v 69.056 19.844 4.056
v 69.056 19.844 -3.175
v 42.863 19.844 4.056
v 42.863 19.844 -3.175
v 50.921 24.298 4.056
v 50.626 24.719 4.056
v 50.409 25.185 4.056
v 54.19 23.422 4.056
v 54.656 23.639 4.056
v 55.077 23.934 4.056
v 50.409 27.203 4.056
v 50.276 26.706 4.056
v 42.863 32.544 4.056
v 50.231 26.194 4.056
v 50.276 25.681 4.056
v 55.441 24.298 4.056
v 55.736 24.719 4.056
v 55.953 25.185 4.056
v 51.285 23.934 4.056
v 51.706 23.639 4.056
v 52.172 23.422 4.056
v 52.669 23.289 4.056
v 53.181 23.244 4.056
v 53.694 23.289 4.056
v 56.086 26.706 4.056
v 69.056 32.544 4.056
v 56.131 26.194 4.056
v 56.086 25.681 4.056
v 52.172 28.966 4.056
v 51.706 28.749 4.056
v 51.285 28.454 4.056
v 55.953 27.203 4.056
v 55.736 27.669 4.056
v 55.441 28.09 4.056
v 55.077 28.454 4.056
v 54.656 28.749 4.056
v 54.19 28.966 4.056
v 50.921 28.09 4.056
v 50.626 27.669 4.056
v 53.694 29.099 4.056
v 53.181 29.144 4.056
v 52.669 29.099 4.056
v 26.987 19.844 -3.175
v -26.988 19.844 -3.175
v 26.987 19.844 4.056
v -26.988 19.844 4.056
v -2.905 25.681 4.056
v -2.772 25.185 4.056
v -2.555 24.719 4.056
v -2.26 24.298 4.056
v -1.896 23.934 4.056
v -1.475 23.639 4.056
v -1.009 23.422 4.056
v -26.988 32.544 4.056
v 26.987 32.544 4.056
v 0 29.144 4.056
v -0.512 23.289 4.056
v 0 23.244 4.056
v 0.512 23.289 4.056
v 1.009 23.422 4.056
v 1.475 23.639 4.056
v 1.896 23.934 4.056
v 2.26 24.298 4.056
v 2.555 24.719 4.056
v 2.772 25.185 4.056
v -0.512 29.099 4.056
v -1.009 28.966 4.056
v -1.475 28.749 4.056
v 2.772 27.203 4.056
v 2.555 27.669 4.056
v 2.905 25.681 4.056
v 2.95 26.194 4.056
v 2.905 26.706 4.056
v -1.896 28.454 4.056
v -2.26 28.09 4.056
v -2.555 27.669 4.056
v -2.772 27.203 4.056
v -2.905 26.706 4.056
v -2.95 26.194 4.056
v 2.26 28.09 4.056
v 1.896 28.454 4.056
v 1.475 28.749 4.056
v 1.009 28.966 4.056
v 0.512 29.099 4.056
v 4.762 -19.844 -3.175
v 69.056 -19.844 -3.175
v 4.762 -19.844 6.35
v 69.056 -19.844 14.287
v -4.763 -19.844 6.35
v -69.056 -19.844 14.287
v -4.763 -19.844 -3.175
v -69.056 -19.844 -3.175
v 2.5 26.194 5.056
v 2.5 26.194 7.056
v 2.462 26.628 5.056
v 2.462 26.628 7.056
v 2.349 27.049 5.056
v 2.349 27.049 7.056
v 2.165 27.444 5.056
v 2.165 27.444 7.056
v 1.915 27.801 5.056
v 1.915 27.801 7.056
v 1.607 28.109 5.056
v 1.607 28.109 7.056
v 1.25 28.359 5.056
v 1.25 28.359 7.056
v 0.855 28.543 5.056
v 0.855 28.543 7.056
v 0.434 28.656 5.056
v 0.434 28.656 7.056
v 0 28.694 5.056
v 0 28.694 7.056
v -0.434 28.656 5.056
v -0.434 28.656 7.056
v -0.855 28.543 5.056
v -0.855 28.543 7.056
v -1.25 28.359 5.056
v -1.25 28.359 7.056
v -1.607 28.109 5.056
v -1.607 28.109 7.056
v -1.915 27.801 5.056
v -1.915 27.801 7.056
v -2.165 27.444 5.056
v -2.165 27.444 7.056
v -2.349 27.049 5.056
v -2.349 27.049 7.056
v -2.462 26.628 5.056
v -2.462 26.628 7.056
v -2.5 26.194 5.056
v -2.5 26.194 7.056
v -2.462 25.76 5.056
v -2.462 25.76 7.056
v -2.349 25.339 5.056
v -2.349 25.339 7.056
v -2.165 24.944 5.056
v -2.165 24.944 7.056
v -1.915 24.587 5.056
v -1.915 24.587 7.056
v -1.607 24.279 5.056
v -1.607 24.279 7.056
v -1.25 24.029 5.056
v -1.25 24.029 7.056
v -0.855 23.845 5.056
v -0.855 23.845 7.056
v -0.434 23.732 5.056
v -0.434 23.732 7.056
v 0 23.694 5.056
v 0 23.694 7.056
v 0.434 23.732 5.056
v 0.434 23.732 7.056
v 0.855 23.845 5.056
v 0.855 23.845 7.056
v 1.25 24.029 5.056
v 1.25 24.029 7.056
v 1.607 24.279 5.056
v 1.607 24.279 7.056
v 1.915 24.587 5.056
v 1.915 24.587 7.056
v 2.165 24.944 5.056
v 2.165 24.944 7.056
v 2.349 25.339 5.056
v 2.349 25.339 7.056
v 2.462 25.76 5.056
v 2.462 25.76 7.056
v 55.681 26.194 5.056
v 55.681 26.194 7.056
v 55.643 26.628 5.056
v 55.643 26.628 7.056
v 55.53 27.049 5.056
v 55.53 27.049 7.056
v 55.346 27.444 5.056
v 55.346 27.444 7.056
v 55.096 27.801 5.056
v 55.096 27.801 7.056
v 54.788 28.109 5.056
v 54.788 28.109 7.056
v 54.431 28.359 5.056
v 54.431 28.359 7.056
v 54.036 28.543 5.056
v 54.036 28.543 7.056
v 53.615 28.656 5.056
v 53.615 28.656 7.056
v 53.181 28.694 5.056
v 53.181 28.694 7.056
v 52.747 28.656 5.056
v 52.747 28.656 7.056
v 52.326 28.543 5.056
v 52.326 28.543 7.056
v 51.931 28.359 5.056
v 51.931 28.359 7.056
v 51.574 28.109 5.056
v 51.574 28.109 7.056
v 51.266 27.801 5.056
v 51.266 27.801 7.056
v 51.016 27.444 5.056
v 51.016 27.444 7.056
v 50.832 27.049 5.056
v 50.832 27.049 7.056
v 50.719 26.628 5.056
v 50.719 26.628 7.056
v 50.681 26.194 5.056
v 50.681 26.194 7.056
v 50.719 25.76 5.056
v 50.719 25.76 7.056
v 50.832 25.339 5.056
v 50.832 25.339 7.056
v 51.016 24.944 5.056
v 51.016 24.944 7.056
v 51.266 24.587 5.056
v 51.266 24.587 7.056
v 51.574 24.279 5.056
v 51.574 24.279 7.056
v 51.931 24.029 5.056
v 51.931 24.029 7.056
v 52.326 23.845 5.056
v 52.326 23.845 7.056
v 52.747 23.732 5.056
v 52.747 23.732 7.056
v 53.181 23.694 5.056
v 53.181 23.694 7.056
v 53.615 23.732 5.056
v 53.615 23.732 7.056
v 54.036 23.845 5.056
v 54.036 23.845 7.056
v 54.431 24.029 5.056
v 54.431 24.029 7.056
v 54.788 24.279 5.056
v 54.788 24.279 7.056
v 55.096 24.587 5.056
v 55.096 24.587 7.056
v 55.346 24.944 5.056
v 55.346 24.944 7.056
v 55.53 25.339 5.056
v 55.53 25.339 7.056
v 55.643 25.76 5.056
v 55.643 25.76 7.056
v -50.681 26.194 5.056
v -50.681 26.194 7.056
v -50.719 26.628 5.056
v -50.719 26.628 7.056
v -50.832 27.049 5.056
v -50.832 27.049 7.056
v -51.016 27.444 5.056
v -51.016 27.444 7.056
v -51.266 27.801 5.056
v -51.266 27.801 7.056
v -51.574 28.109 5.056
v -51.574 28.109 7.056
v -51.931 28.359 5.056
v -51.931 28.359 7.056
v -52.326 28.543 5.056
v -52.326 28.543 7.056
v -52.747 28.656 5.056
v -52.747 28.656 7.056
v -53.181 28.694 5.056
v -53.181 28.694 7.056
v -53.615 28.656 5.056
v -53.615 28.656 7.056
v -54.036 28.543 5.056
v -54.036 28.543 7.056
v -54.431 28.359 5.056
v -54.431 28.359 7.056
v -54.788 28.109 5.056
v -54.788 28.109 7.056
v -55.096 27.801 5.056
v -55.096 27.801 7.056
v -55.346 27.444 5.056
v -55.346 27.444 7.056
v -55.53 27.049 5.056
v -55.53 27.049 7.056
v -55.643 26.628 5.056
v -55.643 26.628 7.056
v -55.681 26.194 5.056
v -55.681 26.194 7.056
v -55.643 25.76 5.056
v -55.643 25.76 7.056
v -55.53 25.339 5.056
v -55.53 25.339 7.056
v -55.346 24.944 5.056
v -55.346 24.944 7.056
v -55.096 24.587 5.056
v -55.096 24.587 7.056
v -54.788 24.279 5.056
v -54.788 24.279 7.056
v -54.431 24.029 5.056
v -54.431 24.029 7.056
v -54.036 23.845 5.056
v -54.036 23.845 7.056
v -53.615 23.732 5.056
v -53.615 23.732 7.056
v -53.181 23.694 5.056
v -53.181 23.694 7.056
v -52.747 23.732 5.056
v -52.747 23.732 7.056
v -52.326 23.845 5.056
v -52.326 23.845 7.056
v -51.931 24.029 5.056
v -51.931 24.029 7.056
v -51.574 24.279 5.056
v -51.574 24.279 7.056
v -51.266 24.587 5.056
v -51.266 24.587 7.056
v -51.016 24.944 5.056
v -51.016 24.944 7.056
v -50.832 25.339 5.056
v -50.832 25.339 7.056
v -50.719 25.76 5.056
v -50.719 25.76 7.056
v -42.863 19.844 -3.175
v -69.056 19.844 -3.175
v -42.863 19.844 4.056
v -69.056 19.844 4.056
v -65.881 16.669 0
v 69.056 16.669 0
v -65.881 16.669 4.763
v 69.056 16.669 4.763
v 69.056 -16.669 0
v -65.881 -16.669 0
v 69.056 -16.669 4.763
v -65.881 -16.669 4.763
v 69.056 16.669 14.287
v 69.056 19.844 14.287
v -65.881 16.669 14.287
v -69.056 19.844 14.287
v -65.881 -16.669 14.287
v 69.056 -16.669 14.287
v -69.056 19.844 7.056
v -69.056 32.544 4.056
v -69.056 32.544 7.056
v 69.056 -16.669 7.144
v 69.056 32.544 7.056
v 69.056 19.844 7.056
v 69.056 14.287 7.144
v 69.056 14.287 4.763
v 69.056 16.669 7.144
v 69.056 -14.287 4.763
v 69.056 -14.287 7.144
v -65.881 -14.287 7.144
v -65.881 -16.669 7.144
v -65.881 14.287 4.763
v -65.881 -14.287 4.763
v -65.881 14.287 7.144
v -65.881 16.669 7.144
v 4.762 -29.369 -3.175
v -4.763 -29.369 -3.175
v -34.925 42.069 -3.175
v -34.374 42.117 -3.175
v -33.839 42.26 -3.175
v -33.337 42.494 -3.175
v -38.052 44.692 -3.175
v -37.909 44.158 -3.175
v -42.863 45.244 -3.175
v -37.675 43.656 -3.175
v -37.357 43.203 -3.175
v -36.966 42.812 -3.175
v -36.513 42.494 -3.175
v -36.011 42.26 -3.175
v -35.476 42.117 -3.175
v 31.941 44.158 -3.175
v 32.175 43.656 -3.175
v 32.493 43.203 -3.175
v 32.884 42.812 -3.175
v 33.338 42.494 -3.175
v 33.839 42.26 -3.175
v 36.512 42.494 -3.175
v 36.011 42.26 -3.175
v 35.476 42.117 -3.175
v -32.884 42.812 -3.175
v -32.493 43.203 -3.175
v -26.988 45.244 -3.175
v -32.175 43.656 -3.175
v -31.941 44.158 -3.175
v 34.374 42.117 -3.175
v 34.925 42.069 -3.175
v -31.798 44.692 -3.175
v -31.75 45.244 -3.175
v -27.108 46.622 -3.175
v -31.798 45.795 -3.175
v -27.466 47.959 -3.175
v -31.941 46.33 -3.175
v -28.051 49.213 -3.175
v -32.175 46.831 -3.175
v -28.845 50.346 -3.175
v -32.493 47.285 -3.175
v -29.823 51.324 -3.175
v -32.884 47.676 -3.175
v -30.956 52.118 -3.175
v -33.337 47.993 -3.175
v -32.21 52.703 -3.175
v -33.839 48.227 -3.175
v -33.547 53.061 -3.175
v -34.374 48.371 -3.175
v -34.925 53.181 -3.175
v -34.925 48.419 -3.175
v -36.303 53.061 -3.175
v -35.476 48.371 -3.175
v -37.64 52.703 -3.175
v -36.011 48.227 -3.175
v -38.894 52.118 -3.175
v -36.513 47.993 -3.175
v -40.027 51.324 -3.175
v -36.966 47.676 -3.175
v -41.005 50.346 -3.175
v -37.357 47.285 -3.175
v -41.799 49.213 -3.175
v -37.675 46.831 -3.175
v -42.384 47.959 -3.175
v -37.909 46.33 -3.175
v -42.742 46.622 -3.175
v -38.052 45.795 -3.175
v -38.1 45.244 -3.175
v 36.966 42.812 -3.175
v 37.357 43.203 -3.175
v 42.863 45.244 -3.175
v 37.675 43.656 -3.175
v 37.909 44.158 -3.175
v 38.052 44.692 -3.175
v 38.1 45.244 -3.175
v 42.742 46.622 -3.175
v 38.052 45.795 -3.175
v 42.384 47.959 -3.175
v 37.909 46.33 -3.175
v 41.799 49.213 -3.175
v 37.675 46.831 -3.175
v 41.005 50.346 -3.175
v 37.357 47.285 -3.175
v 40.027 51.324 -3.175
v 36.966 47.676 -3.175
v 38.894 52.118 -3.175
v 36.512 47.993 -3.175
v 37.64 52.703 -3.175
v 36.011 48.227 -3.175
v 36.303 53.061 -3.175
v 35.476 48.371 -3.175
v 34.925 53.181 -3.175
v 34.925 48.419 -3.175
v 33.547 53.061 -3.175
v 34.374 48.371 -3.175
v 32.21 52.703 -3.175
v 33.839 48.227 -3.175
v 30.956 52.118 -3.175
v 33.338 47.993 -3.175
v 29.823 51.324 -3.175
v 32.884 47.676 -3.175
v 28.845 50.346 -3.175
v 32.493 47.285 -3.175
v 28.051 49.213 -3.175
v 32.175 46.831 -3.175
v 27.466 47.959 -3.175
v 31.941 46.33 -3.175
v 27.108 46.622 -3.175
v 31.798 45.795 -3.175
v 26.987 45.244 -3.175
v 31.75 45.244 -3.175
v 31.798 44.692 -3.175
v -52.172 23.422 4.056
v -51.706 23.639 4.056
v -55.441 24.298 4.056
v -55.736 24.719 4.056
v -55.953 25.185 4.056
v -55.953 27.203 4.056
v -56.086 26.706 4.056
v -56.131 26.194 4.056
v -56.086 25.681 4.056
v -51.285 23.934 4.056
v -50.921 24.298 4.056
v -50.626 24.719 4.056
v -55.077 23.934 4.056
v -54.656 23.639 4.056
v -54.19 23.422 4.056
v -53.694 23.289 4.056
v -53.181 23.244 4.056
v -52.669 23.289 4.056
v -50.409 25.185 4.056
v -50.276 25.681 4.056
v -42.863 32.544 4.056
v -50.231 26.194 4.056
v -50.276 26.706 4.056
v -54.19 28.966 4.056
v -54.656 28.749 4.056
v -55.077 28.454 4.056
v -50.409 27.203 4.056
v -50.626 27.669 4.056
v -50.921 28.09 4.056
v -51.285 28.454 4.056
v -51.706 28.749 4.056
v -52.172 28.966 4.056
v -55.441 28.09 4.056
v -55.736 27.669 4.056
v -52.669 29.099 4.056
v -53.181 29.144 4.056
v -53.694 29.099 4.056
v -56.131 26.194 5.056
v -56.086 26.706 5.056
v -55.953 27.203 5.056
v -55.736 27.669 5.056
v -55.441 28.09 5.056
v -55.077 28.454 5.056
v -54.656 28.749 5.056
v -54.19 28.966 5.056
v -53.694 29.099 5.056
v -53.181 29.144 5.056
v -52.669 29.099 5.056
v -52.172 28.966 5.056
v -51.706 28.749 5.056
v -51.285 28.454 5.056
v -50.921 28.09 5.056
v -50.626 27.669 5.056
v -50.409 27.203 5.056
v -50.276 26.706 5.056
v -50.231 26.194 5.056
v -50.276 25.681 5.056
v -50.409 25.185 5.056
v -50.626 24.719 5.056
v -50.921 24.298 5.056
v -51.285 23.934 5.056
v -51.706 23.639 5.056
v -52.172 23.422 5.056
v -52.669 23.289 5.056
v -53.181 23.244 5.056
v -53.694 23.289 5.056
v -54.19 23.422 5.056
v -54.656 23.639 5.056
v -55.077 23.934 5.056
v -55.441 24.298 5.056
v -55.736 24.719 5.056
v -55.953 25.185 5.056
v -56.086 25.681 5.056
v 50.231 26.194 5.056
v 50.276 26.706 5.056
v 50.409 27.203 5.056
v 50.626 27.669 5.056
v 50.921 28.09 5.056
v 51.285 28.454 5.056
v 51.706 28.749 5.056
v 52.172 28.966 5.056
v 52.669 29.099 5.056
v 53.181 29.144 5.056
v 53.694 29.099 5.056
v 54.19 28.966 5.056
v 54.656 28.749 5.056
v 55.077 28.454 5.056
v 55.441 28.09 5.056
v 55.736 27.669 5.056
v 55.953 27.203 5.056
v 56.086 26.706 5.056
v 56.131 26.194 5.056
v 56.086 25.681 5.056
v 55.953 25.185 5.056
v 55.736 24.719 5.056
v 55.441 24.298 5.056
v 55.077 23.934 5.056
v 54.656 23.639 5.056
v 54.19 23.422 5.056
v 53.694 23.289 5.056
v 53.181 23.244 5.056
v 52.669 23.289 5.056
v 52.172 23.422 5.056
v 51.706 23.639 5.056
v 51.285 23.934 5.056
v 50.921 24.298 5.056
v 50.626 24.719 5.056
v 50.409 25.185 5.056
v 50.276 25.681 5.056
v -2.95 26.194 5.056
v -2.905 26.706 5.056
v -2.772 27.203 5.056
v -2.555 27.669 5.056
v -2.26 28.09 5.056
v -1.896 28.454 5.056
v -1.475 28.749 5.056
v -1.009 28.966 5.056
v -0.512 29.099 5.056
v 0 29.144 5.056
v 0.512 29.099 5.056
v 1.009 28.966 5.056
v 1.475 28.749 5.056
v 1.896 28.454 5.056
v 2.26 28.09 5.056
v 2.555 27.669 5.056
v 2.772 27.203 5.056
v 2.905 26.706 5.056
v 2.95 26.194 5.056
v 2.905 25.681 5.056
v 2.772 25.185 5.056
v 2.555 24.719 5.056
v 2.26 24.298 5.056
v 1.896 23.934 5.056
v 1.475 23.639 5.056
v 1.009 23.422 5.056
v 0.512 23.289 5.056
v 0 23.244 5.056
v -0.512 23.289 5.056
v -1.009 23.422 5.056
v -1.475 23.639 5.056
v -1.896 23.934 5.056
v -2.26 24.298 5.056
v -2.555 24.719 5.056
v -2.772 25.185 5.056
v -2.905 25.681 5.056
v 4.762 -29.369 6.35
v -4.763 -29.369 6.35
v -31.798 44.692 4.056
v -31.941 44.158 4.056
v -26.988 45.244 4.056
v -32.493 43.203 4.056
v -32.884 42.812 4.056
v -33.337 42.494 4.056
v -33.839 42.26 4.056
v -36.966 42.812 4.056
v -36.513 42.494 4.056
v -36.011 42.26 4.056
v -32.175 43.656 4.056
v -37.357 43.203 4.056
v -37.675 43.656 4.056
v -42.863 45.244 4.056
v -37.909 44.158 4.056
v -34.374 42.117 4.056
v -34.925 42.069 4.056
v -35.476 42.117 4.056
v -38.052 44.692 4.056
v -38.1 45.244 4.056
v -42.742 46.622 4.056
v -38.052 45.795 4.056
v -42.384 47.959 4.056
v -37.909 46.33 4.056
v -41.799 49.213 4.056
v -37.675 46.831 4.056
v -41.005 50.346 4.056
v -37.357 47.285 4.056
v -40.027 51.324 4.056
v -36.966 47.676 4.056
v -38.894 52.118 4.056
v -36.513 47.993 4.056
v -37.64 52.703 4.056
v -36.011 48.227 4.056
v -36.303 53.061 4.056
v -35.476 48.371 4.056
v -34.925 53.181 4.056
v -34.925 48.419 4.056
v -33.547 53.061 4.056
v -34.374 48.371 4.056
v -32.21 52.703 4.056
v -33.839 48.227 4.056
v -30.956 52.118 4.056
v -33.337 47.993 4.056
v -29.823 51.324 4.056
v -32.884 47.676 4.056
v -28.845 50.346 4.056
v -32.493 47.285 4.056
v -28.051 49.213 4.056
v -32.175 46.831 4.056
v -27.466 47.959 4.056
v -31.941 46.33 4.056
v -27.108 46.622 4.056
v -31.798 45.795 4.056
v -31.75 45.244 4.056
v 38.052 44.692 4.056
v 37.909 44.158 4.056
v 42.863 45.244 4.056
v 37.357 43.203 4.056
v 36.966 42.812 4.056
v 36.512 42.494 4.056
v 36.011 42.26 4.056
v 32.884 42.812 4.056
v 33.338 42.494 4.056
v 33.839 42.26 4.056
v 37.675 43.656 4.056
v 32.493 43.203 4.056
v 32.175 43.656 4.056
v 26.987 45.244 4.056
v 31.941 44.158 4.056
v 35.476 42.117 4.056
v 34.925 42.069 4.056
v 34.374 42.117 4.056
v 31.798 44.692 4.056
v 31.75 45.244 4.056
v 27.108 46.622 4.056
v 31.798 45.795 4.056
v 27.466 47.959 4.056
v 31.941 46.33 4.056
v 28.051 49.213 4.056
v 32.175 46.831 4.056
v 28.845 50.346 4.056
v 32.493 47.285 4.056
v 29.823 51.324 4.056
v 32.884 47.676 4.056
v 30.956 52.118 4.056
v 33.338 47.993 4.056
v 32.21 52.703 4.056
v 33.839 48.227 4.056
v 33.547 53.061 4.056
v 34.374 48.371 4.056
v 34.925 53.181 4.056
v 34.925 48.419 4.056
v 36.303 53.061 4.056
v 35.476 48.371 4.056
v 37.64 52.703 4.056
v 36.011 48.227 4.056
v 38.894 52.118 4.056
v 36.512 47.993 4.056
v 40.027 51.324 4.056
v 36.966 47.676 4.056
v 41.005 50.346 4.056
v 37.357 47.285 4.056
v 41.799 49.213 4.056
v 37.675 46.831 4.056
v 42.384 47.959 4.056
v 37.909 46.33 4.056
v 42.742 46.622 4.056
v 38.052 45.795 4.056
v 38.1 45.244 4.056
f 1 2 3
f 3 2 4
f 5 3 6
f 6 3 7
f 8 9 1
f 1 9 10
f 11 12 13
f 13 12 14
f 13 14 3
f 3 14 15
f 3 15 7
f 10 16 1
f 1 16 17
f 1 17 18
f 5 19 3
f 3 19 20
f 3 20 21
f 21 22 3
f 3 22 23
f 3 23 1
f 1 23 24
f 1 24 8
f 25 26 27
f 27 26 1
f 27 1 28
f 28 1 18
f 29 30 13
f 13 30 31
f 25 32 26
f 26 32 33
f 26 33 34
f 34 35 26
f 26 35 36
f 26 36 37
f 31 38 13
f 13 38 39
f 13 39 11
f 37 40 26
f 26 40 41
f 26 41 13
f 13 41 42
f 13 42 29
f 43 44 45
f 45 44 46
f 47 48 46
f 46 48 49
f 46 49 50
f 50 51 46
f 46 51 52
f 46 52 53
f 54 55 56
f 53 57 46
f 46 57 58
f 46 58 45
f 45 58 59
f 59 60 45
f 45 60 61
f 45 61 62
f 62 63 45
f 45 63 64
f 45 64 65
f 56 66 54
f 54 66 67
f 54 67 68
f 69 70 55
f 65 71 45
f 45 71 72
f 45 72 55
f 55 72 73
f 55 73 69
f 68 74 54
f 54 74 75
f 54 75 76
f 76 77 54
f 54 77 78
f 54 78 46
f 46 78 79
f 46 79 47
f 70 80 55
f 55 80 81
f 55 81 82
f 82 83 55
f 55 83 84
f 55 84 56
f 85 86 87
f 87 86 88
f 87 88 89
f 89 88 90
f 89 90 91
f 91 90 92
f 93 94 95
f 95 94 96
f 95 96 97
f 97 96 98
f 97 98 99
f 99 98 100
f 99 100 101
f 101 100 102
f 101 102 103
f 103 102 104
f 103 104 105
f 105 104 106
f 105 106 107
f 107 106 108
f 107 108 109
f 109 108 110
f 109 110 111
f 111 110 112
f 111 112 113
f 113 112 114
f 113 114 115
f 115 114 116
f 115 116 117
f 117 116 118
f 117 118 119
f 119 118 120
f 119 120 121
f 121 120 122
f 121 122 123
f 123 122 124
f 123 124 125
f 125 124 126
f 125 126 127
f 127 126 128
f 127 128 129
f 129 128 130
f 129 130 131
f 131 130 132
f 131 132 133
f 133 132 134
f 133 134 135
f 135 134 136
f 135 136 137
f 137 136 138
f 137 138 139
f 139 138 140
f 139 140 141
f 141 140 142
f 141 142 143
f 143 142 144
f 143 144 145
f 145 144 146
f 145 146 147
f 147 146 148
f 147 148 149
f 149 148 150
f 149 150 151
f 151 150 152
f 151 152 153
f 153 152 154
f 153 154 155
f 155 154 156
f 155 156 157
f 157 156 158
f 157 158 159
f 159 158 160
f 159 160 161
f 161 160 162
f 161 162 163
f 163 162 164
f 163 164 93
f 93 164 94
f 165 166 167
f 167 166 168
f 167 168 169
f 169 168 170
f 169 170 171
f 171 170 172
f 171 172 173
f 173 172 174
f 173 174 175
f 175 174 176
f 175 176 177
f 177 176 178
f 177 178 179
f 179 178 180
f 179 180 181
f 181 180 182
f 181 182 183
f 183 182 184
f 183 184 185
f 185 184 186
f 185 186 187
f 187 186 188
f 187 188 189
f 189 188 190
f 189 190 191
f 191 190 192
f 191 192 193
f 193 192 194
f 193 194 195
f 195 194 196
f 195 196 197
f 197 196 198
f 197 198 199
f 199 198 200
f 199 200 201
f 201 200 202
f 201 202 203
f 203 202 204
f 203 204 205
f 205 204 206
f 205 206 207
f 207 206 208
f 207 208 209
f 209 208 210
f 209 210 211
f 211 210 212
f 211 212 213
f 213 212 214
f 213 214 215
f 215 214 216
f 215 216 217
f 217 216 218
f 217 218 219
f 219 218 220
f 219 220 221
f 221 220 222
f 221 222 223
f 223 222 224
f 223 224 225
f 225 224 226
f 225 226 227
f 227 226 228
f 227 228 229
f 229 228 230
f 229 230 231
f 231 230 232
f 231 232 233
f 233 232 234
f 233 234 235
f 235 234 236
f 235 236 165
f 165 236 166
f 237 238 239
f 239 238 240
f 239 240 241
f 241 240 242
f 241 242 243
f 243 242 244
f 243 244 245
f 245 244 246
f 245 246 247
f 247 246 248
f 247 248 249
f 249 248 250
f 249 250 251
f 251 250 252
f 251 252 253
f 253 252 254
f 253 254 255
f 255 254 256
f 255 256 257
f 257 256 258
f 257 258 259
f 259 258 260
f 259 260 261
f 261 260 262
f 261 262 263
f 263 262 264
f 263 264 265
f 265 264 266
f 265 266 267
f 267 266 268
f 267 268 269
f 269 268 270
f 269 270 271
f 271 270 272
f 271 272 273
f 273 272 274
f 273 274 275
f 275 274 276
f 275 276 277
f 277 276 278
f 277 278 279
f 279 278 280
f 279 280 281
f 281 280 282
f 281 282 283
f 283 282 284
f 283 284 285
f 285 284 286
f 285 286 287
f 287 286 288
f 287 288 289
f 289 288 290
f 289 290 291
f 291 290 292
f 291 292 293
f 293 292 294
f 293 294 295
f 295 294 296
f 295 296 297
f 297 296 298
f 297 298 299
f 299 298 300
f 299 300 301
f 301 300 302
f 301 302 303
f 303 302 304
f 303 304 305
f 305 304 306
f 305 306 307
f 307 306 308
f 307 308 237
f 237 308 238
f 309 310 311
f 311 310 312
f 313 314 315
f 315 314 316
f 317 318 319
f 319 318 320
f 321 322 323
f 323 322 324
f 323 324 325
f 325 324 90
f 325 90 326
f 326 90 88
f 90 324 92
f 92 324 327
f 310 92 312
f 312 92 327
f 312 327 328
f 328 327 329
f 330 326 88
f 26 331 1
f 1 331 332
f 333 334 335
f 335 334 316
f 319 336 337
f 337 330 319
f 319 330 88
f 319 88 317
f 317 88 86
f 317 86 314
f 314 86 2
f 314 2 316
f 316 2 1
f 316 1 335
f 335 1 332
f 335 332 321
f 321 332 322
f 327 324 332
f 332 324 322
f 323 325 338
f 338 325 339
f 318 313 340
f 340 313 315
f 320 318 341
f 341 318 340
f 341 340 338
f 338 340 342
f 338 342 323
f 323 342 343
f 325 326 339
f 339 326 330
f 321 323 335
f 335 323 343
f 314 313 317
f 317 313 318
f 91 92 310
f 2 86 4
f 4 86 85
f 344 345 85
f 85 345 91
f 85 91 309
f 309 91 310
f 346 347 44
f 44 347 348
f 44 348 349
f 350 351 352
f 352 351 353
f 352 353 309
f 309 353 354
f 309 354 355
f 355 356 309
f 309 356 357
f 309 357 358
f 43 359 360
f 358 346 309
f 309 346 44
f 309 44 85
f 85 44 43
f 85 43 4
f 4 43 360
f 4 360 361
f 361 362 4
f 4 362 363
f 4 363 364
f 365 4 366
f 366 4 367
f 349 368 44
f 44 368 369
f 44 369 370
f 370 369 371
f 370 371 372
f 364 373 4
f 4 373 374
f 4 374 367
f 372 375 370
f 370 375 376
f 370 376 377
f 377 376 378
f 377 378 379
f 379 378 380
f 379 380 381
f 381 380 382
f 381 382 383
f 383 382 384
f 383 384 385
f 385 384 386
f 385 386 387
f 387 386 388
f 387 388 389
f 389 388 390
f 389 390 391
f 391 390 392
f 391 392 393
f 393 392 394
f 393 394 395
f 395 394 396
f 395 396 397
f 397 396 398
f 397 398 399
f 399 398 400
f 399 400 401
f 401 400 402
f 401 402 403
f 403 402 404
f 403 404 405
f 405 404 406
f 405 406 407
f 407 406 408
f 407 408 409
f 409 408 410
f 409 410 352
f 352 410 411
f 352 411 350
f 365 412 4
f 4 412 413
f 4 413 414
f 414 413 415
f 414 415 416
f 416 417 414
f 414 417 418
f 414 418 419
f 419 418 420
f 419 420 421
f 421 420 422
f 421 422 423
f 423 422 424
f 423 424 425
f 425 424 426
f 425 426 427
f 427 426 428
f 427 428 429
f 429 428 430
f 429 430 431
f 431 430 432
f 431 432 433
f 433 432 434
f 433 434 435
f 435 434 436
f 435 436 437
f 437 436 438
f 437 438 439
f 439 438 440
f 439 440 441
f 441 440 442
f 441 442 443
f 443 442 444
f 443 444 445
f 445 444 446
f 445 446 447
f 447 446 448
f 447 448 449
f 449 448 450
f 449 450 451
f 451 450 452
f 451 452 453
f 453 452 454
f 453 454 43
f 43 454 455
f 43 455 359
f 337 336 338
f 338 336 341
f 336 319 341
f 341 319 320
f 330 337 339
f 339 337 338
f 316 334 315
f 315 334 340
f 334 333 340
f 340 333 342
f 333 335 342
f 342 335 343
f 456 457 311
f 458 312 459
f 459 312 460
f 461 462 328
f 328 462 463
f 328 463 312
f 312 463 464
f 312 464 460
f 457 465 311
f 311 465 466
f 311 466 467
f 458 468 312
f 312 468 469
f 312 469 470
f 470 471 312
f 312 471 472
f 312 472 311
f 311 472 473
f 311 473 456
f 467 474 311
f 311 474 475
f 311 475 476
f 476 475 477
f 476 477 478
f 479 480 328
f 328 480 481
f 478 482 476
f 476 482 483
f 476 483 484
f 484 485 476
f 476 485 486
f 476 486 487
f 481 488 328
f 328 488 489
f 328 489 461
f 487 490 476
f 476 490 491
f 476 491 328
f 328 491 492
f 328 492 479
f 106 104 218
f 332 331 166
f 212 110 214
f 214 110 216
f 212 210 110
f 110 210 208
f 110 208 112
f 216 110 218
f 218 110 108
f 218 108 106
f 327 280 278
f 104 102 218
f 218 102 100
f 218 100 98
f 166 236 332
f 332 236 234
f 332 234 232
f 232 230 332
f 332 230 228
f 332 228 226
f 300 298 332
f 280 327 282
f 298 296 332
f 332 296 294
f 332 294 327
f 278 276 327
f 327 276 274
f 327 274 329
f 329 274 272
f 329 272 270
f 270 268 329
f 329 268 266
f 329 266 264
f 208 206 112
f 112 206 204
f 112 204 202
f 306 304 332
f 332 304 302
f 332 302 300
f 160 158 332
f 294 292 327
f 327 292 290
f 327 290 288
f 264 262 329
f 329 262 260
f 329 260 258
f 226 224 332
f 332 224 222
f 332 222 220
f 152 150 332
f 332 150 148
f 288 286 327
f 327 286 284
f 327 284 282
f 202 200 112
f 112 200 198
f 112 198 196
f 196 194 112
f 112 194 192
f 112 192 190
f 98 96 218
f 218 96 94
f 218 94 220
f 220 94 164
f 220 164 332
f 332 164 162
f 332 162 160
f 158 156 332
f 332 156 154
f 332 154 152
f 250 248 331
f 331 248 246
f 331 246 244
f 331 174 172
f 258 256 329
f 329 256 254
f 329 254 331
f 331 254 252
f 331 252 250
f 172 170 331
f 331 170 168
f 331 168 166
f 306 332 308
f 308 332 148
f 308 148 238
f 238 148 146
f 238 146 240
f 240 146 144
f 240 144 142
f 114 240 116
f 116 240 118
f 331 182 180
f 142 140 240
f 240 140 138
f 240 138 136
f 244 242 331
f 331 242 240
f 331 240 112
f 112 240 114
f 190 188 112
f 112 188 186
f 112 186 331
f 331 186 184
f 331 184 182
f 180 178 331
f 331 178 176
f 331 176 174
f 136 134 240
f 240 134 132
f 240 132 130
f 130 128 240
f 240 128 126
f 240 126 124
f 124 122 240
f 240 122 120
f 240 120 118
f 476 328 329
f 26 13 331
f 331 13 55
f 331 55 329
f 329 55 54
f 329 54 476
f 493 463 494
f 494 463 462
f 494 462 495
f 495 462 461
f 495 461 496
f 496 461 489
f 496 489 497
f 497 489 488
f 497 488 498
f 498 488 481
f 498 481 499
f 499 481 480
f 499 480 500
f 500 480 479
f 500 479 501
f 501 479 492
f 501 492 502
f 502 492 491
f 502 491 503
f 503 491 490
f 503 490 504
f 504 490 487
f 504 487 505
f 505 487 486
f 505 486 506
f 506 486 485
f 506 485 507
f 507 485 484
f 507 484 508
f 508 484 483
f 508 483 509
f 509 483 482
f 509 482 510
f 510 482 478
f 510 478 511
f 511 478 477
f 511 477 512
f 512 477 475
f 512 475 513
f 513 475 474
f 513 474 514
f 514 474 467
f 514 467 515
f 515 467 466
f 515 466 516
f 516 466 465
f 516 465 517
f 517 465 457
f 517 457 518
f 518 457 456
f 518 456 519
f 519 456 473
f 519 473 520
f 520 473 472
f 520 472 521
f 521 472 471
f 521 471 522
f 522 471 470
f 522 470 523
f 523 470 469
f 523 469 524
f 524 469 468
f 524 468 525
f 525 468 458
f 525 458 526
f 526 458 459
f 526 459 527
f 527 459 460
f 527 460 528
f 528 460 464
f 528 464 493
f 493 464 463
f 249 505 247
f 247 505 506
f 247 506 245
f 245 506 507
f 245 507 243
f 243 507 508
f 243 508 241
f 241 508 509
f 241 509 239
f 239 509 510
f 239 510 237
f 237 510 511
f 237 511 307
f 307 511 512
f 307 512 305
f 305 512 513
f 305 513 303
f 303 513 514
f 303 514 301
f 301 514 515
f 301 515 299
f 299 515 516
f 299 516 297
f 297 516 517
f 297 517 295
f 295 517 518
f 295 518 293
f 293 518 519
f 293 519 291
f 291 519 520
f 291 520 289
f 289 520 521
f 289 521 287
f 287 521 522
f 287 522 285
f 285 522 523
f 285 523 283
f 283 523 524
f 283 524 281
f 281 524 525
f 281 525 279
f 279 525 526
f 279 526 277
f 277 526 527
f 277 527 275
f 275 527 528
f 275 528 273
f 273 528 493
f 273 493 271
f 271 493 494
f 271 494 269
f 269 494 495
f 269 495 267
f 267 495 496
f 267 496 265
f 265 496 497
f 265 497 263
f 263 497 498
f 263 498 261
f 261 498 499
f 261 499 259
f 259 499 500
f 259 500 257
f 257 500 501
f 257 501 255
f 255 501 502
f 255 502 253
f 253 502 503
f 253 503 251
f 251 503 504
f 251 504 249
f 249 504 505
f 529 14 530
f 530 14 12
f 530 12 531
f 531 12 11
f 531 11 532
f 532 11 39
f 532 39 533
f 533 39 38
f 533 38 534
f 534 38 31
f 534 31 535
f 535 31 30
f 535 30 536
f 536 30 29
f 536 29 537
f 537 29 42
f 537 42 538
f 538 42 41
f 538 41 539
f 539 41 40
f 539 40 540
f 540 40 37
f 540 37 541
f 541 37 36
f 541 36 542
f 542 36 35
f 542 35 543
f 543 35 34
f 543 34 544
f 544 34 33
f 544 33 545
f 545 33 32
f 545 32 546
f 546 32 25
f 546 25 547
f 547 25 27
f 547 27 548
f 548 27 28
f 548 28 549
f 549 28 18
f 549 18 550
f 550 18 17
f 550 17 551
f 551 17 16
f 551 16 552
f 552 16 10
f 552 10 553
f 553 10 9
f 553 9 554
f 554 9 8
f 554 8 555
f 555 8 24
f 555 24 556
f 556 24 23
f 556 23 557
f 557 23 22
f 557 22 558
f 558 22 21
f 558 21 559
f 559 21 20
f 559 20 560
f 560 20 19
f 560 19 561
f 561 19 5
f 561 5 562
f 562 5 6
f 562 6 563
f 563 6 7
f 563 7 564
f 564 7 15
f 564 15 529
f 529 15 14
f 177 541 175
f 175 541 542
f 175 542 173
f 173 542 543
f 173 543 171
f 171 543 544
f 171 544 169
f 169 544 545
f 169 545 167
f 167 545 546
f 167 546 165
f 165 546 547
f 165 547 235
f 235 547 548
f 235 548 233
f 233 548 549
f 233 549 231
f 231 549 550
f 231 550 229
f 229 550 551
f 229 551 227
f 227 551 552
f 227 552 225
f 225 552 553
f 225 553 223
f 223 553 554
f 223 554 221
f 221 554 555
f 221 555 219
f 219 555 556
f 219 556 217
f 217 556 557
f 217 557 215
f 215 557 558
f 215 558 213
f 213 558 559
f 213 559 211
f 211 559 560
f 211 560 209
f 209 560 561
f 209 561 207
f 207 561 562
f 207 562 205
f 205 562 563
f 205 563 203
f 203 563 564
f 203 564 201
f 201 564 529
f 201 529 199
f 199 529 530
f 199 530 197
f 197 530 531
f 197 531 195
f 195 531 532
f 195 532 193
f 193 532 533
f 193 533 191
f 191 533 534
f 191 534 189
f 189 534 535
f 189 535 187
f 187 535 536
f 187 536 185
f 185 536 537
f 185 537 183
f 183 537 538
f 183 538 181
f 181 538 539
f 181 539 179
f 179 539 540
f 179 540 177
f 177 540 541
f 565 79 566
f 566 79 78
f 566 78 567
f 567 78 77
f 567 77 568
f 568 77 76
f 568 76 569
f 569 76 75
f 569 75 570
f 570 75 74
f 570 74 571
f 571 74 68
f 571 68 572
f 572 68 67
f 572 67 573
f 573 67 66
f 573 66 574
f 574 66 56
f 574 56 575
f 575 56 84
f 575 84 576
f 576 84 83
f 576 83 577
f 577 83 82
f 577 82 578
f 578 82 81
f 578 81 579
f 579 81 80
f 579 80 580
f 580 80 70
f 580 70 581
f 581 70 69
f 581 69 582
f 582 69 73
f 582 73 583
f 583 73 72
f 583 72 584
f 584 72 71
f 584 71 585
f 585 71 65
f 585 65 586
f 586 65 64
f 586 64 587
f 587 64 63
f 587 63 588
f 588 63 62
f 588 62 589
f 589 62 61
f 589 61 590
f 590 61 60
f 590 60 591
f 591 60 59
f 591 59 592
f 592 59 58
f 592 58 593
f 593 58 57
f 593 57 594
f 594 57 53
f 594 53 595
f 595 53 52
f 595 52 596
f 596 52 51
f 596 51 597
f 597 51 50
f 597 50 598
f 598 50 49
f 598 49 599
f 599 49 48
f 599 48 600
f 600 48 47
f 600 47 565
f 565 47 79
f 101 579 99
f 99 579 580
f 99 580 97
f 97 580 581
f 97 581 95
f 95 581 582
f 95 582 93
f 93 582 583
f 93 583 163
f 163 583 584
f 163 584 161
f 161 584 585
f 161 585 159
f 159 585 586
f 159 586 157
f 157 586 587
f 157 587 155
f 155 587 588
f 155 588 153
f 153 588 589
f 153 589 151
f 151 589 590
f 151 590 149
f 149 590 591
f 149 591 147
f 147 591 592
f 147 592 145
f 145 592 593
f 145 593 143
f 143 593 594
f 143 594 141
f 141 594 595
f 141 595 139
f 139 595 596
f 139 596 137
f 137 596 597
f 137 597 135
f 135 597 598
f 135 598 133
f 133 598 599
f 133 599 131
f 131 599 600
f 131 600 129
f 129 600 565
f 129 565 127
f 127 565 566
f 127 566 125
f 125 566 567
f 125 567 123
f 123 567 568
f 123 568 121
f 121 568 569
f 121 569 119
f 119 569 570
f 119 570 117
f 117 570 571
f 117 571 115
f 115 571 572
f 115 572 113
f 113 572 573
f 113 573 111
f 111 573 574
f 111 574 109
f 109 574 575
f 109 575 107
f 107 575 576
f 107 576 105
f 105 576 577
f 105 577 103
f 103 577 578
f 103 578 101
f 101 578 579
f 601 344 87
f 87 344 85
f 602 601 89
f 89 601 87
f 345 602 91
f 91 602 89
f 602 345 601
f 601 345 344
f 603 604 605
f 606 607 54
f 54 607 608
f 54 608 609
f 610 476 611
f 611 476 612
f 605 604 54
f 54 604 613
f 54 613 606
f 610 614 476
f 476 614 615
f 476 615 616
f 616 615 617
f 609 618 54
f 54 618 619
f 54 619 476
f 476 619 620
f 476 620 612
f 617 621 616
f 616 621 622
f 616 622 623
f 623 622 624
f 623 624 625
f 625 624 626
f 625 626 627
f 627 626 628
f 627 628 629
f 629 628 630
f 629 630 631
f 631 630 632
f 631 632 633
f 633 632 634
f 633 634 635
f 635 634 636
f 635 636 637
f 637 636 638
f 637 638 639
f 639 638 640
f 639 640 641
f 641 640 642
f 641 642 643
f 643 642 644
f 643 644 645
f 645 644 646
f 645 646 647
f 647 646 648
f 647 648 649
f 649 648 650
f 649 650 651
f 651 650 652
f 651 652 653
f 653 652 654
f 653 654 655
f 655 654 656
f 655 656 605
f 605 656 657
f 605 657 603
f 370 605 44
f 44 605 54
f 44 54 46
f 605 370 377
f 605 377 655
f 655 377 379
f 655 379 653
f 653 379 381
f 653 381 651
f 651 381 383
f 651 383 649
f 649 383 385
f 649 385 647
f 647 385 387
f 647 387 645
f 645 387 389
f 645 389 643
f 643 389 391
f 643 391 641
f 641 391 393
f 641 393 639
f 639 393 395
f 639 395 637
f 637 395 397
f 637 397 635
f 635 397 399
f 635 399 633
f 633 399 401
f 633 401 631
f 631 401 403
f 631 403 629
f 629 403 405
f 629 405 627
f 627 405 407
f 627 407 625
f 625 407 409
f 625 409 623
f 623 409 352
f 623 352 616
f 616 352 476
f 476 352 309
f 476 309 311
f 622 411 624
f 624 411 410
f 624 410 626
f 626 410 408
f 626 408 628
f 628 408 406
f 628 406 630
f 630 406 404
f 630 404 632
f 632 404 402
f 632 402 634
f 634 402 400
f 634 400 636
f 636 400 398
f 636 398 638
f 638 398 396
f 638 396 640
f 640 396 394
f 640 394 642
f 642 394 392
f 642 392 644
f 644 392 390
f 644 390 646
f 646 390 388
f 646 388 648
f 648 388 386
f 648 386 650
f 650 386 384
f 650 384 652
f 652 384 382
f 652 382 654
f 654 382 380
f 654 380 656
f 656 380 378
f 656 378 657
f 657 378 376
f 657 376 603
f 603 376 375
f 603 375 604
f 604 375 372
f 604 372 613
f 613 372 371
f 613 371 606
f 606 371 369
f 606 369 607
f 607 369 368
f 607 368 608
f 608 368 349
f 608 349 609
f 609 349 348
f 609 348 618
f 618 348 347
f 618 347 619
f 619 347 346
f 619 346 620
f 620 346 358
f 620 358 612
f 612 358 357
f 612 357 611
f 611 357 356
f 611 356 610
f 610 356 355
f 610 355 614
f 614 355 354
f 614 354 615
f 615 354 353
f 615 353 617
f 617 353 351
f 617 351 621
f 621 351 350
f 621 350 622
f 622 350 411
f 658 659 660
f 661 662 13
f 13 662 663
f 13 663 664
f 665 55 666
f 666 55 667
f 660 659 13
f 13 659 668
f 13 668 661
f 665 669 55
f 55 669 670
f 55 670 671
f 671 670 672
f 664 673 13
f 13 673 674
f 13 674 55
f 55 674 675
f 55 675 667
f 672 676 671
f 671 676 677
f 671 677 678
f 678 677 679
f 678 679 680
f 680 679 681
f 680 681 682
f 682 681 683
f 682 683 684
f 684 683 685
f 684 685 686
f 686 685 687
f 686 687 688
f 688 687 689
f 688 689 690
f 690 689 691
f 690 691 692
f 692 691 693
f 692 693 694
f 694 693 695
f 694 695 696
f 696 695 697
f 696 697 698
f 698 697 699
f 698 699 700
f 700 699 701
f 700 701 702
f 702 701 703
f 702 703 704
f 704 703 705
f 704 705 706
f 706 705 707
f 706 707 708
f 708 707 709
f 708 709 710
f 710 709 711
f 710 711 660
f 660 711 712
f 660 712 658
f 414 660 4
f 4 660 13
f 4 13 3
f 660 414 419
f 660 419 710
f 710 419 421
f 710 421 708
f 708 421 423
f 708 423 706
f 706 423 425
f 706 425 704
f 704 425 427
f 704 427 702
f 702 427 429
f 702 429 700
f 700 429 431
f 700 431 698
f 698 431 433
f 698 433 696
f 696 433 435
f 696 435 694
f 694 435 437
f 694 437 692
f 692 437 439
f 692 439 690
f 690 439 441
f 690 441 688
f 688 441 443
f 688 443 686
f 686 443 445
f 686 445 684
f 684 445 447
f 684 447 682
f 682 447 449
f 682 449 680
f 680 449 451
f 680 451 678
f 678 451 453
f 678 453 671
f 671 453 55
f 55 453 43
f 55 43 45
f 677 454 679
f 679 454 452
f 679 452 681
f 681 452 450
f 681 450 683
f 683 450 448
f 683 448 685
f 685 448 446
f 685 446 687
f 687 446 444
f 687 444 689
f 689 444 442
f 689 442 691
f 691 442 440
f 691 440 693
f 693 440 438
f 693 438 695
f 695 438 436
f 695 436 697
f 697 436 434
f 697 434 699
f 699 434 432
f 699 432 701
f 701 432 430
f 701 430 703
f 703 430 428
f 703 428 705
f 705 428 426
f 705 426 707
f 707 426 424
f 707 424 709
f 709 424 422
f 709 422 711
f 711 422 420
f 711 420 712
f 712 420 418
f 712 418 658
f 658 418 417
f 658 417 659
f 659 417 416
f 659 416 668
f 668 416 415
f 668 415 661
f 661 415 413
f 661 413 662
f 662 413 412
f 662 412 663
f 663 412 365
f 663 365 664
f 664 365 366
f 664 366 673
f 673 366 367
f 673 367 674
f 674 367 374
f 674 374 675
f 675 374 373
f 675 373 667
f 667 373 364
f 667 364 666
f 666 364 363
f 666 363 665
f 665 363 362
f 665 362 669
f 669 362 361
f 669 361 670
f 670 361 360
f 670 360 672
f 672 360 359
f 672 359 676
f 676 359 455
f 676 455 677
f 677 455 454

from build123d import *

# Parameters (mm, degrees)
SKETCH1_W           = 138.1125
SKETCH1_H           = 39.6875
SKETCH1_W_2         = 131.7625
SKETCH1_H_2         = 33.3375
BOSS_EXTRUDE1_DEPTH = 14.2875
SKETCH2_W           = 138.1125
SKETCH2_H           = 39.6875
BOSS_EXTRUDE2_DEPTH = 3.175
CUT_EXTRUDE1_REACH  = 142.26
SKETCH3_W           = 14.2875
SKETCH3_H           = 33.3375
BOSS_EXTRUDE3_REACH = 142.26
SKETCH4_W           = 2.38125
SKETCH4_H           = 2.38125
BOSS_EXTRUDE4_START = -8.73125
SKETCH6_W           = 138.1125
SKETCH6_H           = 12.7
SKETCH6_R           = 2.5
BOSS_EXTRUDE4_DEPTH = 1.5
SKETCH7_R           = 2.95
CUT_EXTRUDE2_DEPTH  = 1
SKETCH8_W           = 9.525
SKETCH8_H           = 9.525
BOSS_EXTRUDE5_DEPTH = 9.525
BOSS_EXTRUDE6_START = -10.23125
SKETCH9_W           = 15.875
SKETCH9_H           = 12.7
SKETCH9_R           = 3.175
BOSS_EXTRUDE6_DEPTH = 7.23125


with BuildPart() as part:
    # Sketch1 → Boss-Extrude1 (new body)
    with BuildSketch(Plane.XY):
        Rectangle(SKETCH1_W, SKETCH1_H)
        Rectangle(SKETCH1_W_2, SKETCH1_H_2, mode=Mode.SUBTRACT)
    extrude(amount=BOSS_EXTRUDE1_DEPTH)

    # Sketch2 → Boss-Extrude2 (add)
    with BuildSketch(Plane(origin=(0, 0, 0), x_dir=(-1, 0, 0), z_dir=(0, 0, -1))):
        Rectangle(SKETCH2_W, SKETCH2_H)
    extrude(amount=BOSS_EXTRUDE2_DEPTH)

    # Sketch3 → Cut-Extrude1 (cut, up to next)
    with BuildSketch(Plane(origin=(69.05625, 0, 0), x_dir=(0, 0, -1), z_dir=(1, 0, 0)), mode=Mode.PRIVATE) as cut_extrude1_sk1:
        with Locations((-7.14375, 0)):
            Rectangle(SKETCH3_W, SKETCH3_H)
    cut_extrude1_tool1 = extrude(cut_extrude1_sk1.sketch, amount=-CUT_EXTRUDE1_REACH, mode=Mode.PRIVATE) & part.part
    add(cut_extrude1_tool1.solids().sort_by_distance((69.05625, 0, 7.14375))[0], mode=Mode.SUBTRACT)

    # Sketch4 → Boss-Extrude3 (add, up to next)
    with BuildSketch(Plane(origin=(69.05625, 0, 0), x_dir=(0, 0, -1), z_dir=(1, 0, 0)), mode=Mode.PRIVATE) as boss_extrude3_sk1:
        with Locations((-5.953125, -15.478125)):
            Rectangle(SKETCH4_W, SKETCH4_H)
    boss_extrude3_tool1 = extrude(boss_extrude3_sk1.sketch, amount=-BOSS_EXTRUDE3_REACH, mode=Mode.PRIVATE) - part.part
    # Sketch4 → Boss-Extrude3 (add, up to next)
    with BuildSketch(Plane(origin=(69.05625, 0, 0), x_dir=(0, 0, -1), z_dir=(1, 0, 0)), mode=Mode.PRIVATE) as boss_extrude3_sk2:
        with Locations((-5.953125, 15.478125)):
            Rectangle(SKETCH4_W, SKETCH4_H)
    boss_extrude3_tool2 = extrude(boss_extrude3_sk2.sketch, amount=-BOSS_EXTRUDE3_REACH, mode=Mode.PRIVATE) - part.part
    add(boss_extrude3_tool1.solids().sort_by_distance((69.05625, -15.478125, 5.953125))[0])
    add(boss_extrude3_tool2.solids().sort_by_distance((69.05625, 15.478125, 5.953125))[0])

    # Sketch6 → Boss-Extrude4 (add, symmetric)
    with BuildSketch(Plane(origin=(0, 0, -3.175), x_dir=(-1, 0, 0), z_dir=(0, 0, -1)).offset(BOSS_EXTRUDE4_START)):
        with Locations((0, 26.19375)):
            Rectangle(SKETCH6_W, SKETCH6_H)
        with Locations((0, 26.19375)):
            Circle(SKETCH6_R, mode=Mode.SUBTRACT)
        with Locations((-53.18125, 26.19375)):
            Circle(SKETCH6_R, mode=Mode.SUBTRACT)
        with Locations((53.18125, 26.19375)):
            Circle(SKETCH6_R, mode=Mode.SUBTRACT)
    extrude(amount=BOSS_EXTRUDE4_DEPTH, both=True)

    # Sketch7 → Cut-Extrude2 (cut)
    with BuildSketch(Plane(origin=(0, 0, 4.05625), x_dir=(-1, 0, 0), z_dir=(0, 0, -1))):
        with Locations((-53.18125, 26.19375)):
            Circle(SKETCH7_R)
        with Locations((0, 26.19375)):
            Circle(SKETCH7_R)
        with Locations((53.18125, 26.19375)):
            Circle(SKETCH7_R)
    extrude(amount=-CUT_EXTRUDE2_DEPTH, mode=Mode.SUBTRACT)

    # Sketch8 → Boss-Extrude5 (add)
    with BuildSketch(Plane.XZ.offset(19.84375)):
        with Locations((0, 1.5875)):
            Rectangle(SKETCH8_W, SKETCH8_H)
    extrude(amount=BOSS_EXTRUDE5_DEPTH)

    # Sketch9 → Boss-Extrude6 (add)
    # profile 1 of 4: a face of its own
    with BuildSketch(Plane.XY.offset(7.05625).offset(BOSS_EXTRUDE6_START)):
        with Locations((-34.925, 26.19375)):
            Rectangle(SKETCH9_W, SKETCH9_H)
    # profile 2 of 4: a face of its own
    with BuildSketch(Plane.XY.offset(7.05625).offset(BOSS_EXTRUDE6_START)):
        with BuildLine():
            Line((-42.8625, 45.24375), (-42.8625, 32.54375))
            Line((-42.8625, 32.54375), (-26.9875, 32.54375))
            Line((-26.9875, 32.54375), (-26.9875, 45.24375))
            ThreePointArc((-26.9875, 45.24375), (-34.925, 53.18125), (-42.8625, 45.24375))
        make_face()
        with Locations(Location((-34.925, 45.24375, 0), (0, 0, 180))):
            Circle(SKETCH9_R, mode=Mode.SUBTRACT)
    # profile 3 of 4: a face of its own
    with BuildSketch(Plane.XY.offset(7.05625).offset(BOSS_EXTRUDE6_START)):
        with Locations((34.925, 26.19375)):
            Rectangle(SKETCH9_W, SKETCH9_H)
    # profile 4 of 4: a face of its own
    with BuildSketch(Plane.XY.offset(7.05625).offset(BOSS_EXTRUDE6_START)):
        with BuildLine():
            Line((26.9875, 45.24375), (26.9875, 32.54375))
            Line((26.9875, 32.54375), (42.8625, 32.54375))
            Line((42.8625, 32.54375), (42.8625, 45.24375))
            ThreePointArc((42.8625, 45.24375), (34.925, 53.18125), (26.9875, 45.24375))
        make_face()
        with Locations(Location((34.925, 45.24375, 0), (0, 0, 180))):
            Circle(SKETCH9_R, mode=Mode.SUBTRACT)
    extrude(amount=BOSS_EXTRUDE6_DEPTH)


solid = part.part
